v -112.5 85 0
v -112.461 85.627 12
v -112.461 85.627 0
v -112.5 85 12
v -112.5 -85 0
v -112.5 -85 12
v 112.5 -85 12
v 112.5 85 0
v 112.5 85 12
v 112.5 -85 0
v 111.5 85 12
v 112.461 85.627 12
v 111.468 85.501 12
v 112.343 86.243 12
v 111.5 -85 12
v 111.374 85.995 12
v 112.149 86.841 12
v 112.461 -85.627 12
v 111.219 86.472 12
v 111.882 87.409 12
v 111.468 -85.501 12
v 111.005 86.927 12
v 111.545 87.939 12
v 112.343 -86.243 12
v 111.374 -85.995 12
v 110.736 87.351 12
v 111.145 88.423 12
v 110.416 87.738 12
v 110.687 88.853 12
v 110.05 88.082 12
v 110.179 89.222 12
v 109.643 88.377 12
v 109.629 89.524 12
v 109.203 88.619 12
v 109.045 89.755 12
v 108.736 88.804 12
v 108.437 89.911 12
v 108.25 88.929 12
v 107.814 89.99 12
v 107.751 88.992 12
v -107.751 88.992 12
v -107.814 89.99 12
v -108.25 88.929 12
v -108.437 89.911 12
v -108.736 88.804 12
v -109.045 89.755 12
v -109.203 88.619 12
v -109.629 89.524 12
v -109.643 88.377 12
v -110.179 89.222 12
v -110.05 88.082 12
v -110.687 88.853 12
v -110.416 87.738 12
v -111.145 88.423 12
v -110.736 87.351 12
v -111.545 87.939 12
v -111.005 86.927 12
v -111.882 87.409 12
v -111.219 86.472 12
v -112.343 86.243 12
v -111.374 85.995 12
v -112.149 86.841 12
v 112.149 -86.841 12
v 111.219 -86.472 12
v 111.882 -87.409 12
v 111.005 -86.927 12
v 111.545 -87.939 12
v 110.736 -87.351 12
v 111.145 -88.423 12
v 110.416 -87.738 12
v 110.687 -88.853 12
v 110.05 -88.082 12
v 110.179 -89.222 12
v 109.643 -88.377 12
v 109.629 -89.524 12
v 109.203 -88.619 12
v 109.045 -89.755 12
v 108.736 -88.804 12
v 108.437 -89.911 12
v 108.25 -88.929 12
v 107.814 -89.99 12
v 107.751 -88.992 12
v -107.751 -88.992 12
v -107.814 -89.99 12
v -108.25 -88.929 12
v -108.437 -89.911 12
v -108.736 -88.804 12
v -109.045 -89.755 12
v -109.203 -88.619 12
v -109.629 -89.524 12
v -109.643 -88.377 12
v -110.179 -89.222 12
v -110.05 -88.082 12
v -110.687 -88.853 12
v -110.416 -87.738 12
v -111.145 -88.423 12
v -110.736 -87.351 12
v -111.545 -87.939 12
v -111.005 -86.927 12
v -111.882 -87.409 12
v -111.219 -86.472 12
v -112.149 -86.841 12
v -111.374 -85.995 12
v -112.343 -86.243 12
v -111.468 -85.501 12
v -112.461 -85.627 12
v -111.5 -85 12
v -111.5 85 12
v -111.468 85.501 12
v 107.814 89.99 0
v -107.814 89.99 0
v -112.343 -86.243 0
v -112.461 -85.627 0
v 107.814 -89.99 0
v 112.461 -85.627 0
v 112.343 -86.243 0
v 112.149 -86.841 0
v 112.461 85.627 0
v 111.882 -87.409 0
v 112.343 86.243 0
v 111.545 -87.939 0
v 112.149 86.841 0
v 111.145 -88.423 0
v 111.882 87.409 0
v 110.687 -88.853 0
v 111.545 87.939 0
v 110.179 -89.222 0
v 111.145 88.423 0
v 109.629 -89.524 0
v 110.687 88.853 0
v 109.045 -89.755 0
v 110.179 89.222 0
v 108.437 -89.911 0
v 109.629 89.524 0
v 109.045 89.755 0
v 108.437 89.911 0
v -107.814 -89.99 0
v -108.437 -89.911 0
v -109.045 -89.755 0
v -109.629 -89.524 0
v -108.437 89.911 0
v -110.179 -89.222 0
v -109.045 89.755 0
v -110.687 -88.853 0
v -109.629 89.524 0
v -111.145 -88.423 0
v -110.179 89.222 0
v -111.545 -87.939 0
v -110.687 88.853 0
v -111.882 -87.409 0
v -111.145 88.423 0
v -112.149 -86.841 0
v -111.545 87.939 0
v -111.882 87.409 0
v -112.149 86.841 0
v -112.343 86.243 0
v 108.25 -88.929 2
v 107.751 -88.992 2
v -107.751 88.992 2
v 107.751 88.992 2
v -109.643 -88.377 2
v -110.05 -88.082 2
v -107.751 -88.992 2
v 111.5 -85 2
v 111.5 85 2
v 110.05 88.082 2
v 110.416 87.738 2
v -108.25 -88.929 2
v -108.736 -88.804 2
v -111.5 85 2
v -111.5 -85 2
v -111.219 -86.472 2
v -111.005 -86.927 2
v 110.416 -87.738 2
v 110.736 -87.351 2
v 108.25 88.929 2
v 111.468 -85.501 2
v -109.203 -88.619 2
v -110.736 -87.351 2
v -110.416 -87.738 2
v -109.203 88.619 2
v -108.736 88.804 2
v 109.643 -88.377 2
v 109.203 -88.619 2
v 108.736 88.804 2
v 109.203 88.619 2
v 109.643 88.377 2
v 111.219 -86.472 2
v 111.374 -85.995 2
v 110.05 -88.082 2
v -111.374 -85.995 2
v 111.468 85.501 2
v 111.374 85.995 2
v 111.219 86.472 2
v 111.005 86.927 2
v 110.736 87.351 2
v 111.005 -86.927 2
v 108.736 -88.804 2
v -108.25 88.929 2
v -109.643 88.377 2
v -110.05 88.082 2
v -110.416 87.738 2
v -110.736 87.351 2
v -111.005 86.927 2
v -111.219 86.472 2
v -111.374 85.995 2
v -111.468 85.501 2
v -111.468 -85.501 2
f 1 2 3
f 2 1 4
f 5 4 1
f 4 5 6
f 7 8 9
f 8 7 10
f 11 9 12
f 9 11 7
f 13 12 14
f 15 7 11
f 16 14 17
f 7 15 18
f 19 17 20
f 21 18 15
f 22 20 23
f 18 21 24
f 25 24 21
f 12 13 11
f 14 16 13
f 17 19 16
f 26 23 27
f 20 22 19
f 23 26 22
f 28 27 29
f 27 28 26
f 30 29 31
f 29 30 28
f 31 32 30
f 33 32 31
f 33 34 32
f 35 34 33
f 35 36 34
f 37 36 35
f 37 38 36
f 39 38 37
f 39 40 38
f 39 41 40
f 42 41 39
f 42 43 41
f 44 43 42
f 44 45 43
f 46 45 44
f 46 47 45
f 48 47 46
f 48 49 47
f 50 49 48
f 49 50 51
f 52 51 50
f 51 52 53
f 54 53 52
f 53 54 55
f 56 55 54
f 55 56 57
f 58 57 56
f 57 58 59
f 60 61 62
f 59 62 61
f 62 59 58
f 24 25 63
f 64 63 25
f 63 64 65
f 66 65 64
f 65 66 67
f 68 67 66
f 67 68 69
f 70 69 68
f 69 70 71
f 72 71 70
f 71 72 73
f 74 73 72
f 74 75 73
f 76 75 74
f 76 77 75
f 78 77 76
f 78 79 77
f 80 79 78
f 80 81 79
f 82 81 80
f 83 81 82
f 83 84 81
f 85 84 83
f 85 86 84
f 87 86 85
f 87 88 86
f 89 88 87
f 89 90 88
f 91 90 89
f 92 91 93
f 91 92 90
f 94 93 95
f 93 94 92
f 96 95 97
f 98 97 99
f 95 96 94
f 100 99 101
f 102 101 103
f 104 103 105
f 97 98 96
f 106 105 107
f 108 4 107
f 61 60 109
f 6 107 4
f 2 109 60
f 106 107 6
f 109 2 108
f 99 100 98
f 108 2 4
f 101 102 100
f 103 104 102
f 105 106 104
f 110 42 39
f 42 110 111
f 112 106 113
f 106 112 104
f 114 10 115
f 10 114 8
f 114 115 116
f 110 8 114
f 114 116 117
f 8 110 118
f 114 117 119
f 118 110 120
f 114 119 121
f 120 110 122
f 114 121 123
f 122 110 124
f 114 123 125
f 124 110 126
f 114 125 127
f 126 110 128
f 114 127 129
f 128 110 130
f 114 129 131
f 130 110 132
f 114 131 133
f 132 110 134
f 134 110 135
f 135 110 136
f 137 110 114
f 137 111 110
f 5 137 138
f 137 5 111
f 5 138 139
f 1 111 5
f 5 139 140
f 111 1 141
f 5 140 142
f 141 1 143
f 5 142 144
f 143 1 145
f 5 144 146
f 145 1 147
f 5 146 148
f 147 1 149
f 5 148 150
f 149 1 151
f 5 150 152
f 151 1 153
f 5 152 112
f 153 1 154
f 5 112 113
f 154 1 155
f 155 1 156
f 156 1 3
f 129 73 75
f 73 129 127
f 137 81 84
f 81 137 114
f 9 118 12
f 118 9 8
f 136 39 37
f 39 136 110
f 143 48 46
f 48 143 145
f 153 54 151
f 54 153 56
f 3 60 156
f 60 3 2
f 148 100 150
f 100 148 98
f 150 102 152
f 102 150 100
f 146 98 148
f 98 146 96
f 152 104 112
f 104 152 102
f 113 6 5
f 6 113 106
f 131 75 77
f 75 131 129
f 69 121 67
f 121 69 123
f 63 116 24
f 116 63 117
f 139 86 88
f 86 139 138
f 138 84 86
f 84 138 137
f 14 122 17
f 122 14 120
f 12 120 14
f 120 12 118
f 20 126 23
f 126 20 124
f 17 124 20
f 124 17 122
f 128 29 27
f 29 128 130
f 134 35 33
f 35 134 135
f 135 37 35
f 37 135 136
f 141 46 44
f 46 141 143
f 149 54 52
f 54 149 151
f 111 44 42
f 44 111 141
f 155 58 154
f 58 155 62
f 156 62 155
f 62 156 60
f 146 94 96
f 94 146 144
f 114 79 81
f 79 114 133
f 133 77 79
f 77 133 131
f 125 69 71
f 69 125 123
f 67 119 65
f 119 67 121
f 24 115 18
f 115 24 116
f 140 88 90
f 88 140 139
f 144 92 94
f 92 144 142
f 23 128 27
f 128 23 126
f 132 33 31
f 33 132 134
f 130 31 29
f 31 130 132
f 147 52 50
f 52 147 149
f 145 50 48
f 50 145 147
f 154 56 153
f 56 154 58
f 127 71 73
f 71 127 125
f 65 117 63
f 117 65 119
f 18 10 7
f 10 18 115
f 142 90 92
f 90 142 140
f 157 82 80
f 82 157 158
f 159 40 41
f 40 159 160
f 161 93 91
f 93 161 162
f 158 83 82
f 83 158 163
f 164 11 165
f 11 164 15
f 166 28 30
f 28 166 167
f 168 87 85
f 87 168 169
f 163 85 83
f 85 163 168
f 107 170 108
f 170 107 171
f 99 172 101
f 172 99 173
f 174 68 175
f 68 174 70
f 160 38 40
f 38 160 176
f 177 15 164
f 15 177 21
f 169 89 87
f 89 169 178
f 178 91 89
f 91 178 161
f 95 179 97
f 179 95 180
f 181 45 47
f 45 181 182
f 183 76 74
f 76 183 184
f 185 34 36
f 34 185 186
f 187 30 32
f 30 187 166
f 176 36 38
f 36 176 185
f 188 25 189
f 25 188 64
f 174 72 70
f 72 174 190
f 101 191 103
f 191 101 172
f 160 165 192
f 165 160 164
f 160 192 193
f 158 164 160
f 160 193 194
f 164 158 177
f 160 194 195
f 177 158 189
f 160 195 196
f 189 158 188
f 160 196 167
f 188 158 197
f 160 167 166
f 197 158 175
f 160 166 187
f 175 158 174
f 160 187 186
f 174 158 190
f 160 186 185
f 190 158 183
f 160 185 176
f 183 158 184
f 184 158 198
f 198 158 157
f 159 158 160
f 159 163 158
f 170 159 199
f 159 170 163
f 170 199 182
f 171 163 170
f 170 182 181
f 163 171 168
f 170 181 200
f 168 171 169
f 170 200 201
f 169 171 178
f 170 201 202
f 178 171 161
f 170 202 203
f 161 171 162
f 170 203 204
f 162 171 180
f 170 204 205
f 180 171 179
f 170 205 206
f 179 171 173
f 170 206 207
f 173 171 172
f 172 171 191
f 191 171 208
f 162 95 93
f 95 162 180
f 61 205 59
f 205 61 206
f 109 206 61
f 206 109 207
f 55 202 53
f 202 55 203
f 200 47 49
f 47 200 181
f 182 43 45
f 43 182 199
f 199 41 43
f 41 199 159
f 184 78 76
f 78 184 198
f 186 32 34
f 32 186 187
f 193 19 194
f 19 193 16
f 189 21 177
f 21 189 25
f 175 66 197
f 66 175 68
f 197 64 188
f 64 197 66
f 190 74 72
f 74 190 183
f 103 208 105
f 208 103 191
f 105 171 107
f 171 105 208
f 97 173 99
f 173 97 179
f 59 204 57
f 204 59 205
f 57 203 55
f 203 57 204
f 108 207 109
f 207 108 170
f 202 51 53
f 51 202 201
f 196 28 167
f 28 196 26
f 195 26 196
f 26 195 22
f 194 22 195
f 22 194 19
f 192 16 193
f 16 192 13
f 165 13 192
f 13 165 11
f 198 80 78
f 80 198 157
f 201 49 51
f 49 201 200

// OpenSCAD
$fn = 50;


difference() {
	union() {
		hull() {
			translate(v = [-107.5000000000, 85.0000000000, 0]) {
				cylinder(h = 12, r = 5);
			}
			translate(v = [107.5000000000, 85.0000000000, 0]) {
				cylinder(h = 12, r = 5);
			}
			translate(v = [-107.5000000000, -85.0000000000, 0]) {
				cylinder(h = 12, r = 5);
			}
			translate(v = [107.5000000000, -85.0000000000, 0]) {
				cylinder(h = 12, r = 5);
			}
		}
	}
	union() {
		translate(v = [0, 0, 2]) {
			hull() {
				translate(v = [-107.5000000000, 85.0000000000, 0]) {
					cylinder(h = 10, r = 4);
				}
				translate(v = [107.5000000000, 85.0000000000, 0]) {
					cylinder(h = 10, r = 4);
				}
				translate(v = [-107.5000000000, -85.0000000000, 0]) {
					cylinder(h = 10, r = 4);
				}
				translate(v = [107.5000000000, -85.0000000000, 0]) {
					cylinder(h = 10, r = 4);
				}
			}
		}
	}
}
